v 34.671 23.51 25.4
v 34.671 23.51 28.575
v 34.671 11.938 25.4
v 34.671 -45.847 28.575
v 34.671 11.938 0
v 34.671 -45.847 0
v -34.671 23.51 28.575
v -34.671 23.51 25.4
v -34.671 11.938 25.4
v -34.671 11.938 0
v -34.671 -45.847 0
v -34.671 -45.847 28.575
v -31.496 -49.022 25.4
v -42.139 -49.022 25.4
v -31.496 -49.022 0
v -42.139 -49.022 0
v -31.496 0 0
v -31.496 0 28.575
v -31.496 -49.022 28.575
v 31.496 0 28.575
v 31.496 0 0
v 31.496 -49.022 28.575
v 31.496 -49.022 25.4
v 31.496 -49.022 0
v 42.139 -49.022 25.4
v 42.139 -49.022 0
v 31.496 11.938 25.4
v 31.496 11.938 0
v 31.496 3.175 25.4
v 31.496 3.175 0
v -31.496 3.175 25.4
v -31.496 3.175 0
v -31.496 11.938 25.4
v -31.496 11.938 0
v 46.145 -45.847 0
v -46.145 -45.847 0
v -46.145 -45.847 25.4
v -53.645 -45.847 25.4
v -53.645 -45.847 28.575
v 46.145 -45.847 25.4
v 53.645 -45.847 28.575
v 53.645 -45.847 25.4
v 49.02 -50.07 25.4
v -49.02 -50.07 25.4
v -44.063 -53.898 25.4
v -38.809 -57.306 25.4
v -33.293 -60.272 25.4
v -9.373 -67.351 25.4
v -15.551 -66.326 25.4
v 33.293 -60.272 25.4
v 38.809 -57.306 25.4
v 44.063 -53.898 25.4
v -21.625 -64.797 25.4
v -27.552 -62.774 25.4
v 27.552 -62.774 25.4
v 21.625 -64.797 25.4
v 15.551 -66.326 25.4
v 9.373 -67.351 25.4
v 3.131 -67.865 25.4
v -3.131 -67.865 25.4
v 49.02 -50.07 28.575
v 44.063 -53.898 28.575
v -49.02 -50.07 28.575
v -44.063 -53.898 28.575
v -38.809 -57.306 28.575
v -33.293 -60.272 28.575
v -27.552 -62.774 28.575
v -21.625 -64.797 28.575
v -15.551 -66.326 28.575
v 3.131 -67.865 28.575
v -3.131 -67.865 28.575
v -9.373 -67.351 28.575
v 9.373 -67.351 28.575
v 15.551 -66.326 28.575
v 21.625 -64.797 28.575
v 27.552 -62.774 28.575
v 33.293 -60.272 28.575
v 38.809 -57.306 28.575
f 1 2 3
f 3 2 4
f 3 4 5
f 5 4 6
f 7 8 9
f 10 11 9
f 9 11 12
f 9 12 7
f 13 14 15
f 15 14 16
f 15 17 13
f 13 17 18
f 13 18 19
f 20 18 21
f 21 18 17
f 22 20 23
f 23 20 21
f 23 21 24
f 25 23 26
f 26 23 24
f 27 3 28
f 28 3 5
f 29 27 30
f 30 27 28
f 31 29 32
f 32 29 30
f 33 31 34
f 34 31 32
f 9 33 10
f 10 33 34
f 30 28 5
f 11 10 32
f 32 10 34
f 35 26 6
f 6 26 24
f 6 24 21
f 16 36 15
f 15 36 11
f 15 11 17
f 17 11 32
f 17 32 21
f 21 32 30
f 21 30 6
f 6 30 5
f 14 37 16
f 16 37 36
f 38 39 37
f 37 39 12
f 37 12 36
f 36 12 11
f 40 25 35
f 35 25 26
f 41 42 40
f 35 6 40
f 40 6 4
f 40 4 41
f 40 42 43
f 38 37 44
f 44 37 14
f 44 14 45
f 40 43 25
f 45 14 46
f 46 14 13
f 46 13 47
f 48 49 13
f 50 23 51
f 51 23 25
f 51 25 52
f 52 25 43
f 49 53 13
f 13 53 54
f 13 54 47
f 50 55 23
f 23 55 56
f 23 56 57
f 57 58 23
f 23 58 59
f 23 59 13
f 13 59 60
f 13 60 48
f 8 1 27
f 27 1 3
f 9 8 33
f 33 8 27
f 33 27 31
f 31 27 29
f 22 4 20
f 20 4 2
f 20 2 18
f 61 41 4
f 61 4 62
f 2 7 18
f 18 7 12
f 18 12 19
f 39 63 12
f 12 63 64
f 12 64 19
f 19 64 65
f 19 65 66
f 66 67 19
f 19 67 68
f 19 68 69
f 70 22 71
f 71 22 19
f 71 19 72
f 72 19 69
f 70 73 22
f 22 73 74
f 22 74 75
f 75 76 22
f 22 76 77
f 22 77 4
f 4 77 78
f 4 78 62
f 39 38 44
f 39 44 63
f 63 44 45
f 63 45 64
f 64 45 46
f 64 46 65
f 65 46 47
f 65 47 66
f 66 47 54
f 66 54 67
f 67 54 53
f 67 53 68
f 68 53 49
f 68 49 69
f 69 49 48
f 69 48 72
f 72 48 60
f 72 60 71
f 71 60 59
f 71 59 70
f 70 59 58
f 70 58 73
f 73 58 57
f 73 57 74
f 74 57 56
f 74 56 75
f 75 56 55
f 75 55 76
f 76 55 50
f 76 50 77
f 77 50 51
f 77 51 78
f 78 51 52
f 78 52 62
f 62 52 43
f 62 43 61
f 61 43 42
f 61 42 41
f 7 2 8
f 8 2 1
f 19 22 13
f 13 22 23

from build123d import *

# Parameters (mm, degrees)
BOSS_EXTRUDE2_DEPTH = 25.4
BOSS_EXTRUDE4_DEPTH = 25.4
SKETCH5_W           = 62.992
SKETCH5_H           = 49.022
BOSS_EXTRUDE5_DEPTH = 3.175


with BuildPart() as part:
    # Sketch2 → Boss-Extrude2 (new body)
    with BuildSketch(Plane.XY):
        Polygon((-34.671, -49.022), (-31.496, -49.022), (-31.496, 0), (31.496, 0), (31.496, -49.022), (34.671, -49.022), (34.671, 11.938), (31.496, 11.938), (31.496, 3.175), (-31.496, 3.175), (-31.496, 11.938), (-34.671, 11.938), align=None)
    extrude(amount=BOSS_EXTRUDE2_DEPTH)

    # Sketch4 → Boss-Extrude4 (add)
    with BuildSketch(Plane.XY.offset(25.4)):
        with BuildLine():
            Line((-34.671, -49.022), (-42.1386, -49.022))
            ThreePointArc((-42.1386, -49.022), (-44.170473584, -47.470511893), (-46.145273507, -45.847))
            Line((-46.145273507, -45.847), (-34.671, -45.847))
            Line((-34.671, -45.847), (-34.671, -49.022))
        make_face()
        with BuildLine():
            Line((34.671, -45.847), (34.671, -49.022))
            Line((34.671, -49.022), (42.1386, -49.022))
            ThreePointArc((42.1386, -49.022), (44.170473584, -47.470511893), (46.145273507, -45.847))
            Line((46.145273507, -45.847), (34.671, -45.847))
        make_face()
    extrude(amount=-BOSS_EXTRUDE4_DEPTH)

    # Sketch5 → Boss-Extrude5 (add)
    with BuildSketch(Plane.XY.offset(25.4)):
        with BuildLine():
            Line((-34.671, -45.847), (-34.671, 23.510170408))
            Line((-34.671, 23.510170408), (34.671, 23.510170408))
            Line((34.671, 23.510170408), (34.671, -45.847))
            Line((34.671, -45.847), (53.64486804, -45.847))
            ThreePointArc((53.64486804, -45.847), (0, -67.929829592), (-53.64486804, -45.847))
            Line((-53.64486804, -45.847), (-34.671, -45.847))
        make_face()
        with Locations((0, -24.511)):
            Rectangle(SKETCH5_W, SKETCH5_H, mode=Mode.SUBTRACT)
    extrude(amount=BOSS_EXTRUDE5_DEPTH)


solid = part.part
